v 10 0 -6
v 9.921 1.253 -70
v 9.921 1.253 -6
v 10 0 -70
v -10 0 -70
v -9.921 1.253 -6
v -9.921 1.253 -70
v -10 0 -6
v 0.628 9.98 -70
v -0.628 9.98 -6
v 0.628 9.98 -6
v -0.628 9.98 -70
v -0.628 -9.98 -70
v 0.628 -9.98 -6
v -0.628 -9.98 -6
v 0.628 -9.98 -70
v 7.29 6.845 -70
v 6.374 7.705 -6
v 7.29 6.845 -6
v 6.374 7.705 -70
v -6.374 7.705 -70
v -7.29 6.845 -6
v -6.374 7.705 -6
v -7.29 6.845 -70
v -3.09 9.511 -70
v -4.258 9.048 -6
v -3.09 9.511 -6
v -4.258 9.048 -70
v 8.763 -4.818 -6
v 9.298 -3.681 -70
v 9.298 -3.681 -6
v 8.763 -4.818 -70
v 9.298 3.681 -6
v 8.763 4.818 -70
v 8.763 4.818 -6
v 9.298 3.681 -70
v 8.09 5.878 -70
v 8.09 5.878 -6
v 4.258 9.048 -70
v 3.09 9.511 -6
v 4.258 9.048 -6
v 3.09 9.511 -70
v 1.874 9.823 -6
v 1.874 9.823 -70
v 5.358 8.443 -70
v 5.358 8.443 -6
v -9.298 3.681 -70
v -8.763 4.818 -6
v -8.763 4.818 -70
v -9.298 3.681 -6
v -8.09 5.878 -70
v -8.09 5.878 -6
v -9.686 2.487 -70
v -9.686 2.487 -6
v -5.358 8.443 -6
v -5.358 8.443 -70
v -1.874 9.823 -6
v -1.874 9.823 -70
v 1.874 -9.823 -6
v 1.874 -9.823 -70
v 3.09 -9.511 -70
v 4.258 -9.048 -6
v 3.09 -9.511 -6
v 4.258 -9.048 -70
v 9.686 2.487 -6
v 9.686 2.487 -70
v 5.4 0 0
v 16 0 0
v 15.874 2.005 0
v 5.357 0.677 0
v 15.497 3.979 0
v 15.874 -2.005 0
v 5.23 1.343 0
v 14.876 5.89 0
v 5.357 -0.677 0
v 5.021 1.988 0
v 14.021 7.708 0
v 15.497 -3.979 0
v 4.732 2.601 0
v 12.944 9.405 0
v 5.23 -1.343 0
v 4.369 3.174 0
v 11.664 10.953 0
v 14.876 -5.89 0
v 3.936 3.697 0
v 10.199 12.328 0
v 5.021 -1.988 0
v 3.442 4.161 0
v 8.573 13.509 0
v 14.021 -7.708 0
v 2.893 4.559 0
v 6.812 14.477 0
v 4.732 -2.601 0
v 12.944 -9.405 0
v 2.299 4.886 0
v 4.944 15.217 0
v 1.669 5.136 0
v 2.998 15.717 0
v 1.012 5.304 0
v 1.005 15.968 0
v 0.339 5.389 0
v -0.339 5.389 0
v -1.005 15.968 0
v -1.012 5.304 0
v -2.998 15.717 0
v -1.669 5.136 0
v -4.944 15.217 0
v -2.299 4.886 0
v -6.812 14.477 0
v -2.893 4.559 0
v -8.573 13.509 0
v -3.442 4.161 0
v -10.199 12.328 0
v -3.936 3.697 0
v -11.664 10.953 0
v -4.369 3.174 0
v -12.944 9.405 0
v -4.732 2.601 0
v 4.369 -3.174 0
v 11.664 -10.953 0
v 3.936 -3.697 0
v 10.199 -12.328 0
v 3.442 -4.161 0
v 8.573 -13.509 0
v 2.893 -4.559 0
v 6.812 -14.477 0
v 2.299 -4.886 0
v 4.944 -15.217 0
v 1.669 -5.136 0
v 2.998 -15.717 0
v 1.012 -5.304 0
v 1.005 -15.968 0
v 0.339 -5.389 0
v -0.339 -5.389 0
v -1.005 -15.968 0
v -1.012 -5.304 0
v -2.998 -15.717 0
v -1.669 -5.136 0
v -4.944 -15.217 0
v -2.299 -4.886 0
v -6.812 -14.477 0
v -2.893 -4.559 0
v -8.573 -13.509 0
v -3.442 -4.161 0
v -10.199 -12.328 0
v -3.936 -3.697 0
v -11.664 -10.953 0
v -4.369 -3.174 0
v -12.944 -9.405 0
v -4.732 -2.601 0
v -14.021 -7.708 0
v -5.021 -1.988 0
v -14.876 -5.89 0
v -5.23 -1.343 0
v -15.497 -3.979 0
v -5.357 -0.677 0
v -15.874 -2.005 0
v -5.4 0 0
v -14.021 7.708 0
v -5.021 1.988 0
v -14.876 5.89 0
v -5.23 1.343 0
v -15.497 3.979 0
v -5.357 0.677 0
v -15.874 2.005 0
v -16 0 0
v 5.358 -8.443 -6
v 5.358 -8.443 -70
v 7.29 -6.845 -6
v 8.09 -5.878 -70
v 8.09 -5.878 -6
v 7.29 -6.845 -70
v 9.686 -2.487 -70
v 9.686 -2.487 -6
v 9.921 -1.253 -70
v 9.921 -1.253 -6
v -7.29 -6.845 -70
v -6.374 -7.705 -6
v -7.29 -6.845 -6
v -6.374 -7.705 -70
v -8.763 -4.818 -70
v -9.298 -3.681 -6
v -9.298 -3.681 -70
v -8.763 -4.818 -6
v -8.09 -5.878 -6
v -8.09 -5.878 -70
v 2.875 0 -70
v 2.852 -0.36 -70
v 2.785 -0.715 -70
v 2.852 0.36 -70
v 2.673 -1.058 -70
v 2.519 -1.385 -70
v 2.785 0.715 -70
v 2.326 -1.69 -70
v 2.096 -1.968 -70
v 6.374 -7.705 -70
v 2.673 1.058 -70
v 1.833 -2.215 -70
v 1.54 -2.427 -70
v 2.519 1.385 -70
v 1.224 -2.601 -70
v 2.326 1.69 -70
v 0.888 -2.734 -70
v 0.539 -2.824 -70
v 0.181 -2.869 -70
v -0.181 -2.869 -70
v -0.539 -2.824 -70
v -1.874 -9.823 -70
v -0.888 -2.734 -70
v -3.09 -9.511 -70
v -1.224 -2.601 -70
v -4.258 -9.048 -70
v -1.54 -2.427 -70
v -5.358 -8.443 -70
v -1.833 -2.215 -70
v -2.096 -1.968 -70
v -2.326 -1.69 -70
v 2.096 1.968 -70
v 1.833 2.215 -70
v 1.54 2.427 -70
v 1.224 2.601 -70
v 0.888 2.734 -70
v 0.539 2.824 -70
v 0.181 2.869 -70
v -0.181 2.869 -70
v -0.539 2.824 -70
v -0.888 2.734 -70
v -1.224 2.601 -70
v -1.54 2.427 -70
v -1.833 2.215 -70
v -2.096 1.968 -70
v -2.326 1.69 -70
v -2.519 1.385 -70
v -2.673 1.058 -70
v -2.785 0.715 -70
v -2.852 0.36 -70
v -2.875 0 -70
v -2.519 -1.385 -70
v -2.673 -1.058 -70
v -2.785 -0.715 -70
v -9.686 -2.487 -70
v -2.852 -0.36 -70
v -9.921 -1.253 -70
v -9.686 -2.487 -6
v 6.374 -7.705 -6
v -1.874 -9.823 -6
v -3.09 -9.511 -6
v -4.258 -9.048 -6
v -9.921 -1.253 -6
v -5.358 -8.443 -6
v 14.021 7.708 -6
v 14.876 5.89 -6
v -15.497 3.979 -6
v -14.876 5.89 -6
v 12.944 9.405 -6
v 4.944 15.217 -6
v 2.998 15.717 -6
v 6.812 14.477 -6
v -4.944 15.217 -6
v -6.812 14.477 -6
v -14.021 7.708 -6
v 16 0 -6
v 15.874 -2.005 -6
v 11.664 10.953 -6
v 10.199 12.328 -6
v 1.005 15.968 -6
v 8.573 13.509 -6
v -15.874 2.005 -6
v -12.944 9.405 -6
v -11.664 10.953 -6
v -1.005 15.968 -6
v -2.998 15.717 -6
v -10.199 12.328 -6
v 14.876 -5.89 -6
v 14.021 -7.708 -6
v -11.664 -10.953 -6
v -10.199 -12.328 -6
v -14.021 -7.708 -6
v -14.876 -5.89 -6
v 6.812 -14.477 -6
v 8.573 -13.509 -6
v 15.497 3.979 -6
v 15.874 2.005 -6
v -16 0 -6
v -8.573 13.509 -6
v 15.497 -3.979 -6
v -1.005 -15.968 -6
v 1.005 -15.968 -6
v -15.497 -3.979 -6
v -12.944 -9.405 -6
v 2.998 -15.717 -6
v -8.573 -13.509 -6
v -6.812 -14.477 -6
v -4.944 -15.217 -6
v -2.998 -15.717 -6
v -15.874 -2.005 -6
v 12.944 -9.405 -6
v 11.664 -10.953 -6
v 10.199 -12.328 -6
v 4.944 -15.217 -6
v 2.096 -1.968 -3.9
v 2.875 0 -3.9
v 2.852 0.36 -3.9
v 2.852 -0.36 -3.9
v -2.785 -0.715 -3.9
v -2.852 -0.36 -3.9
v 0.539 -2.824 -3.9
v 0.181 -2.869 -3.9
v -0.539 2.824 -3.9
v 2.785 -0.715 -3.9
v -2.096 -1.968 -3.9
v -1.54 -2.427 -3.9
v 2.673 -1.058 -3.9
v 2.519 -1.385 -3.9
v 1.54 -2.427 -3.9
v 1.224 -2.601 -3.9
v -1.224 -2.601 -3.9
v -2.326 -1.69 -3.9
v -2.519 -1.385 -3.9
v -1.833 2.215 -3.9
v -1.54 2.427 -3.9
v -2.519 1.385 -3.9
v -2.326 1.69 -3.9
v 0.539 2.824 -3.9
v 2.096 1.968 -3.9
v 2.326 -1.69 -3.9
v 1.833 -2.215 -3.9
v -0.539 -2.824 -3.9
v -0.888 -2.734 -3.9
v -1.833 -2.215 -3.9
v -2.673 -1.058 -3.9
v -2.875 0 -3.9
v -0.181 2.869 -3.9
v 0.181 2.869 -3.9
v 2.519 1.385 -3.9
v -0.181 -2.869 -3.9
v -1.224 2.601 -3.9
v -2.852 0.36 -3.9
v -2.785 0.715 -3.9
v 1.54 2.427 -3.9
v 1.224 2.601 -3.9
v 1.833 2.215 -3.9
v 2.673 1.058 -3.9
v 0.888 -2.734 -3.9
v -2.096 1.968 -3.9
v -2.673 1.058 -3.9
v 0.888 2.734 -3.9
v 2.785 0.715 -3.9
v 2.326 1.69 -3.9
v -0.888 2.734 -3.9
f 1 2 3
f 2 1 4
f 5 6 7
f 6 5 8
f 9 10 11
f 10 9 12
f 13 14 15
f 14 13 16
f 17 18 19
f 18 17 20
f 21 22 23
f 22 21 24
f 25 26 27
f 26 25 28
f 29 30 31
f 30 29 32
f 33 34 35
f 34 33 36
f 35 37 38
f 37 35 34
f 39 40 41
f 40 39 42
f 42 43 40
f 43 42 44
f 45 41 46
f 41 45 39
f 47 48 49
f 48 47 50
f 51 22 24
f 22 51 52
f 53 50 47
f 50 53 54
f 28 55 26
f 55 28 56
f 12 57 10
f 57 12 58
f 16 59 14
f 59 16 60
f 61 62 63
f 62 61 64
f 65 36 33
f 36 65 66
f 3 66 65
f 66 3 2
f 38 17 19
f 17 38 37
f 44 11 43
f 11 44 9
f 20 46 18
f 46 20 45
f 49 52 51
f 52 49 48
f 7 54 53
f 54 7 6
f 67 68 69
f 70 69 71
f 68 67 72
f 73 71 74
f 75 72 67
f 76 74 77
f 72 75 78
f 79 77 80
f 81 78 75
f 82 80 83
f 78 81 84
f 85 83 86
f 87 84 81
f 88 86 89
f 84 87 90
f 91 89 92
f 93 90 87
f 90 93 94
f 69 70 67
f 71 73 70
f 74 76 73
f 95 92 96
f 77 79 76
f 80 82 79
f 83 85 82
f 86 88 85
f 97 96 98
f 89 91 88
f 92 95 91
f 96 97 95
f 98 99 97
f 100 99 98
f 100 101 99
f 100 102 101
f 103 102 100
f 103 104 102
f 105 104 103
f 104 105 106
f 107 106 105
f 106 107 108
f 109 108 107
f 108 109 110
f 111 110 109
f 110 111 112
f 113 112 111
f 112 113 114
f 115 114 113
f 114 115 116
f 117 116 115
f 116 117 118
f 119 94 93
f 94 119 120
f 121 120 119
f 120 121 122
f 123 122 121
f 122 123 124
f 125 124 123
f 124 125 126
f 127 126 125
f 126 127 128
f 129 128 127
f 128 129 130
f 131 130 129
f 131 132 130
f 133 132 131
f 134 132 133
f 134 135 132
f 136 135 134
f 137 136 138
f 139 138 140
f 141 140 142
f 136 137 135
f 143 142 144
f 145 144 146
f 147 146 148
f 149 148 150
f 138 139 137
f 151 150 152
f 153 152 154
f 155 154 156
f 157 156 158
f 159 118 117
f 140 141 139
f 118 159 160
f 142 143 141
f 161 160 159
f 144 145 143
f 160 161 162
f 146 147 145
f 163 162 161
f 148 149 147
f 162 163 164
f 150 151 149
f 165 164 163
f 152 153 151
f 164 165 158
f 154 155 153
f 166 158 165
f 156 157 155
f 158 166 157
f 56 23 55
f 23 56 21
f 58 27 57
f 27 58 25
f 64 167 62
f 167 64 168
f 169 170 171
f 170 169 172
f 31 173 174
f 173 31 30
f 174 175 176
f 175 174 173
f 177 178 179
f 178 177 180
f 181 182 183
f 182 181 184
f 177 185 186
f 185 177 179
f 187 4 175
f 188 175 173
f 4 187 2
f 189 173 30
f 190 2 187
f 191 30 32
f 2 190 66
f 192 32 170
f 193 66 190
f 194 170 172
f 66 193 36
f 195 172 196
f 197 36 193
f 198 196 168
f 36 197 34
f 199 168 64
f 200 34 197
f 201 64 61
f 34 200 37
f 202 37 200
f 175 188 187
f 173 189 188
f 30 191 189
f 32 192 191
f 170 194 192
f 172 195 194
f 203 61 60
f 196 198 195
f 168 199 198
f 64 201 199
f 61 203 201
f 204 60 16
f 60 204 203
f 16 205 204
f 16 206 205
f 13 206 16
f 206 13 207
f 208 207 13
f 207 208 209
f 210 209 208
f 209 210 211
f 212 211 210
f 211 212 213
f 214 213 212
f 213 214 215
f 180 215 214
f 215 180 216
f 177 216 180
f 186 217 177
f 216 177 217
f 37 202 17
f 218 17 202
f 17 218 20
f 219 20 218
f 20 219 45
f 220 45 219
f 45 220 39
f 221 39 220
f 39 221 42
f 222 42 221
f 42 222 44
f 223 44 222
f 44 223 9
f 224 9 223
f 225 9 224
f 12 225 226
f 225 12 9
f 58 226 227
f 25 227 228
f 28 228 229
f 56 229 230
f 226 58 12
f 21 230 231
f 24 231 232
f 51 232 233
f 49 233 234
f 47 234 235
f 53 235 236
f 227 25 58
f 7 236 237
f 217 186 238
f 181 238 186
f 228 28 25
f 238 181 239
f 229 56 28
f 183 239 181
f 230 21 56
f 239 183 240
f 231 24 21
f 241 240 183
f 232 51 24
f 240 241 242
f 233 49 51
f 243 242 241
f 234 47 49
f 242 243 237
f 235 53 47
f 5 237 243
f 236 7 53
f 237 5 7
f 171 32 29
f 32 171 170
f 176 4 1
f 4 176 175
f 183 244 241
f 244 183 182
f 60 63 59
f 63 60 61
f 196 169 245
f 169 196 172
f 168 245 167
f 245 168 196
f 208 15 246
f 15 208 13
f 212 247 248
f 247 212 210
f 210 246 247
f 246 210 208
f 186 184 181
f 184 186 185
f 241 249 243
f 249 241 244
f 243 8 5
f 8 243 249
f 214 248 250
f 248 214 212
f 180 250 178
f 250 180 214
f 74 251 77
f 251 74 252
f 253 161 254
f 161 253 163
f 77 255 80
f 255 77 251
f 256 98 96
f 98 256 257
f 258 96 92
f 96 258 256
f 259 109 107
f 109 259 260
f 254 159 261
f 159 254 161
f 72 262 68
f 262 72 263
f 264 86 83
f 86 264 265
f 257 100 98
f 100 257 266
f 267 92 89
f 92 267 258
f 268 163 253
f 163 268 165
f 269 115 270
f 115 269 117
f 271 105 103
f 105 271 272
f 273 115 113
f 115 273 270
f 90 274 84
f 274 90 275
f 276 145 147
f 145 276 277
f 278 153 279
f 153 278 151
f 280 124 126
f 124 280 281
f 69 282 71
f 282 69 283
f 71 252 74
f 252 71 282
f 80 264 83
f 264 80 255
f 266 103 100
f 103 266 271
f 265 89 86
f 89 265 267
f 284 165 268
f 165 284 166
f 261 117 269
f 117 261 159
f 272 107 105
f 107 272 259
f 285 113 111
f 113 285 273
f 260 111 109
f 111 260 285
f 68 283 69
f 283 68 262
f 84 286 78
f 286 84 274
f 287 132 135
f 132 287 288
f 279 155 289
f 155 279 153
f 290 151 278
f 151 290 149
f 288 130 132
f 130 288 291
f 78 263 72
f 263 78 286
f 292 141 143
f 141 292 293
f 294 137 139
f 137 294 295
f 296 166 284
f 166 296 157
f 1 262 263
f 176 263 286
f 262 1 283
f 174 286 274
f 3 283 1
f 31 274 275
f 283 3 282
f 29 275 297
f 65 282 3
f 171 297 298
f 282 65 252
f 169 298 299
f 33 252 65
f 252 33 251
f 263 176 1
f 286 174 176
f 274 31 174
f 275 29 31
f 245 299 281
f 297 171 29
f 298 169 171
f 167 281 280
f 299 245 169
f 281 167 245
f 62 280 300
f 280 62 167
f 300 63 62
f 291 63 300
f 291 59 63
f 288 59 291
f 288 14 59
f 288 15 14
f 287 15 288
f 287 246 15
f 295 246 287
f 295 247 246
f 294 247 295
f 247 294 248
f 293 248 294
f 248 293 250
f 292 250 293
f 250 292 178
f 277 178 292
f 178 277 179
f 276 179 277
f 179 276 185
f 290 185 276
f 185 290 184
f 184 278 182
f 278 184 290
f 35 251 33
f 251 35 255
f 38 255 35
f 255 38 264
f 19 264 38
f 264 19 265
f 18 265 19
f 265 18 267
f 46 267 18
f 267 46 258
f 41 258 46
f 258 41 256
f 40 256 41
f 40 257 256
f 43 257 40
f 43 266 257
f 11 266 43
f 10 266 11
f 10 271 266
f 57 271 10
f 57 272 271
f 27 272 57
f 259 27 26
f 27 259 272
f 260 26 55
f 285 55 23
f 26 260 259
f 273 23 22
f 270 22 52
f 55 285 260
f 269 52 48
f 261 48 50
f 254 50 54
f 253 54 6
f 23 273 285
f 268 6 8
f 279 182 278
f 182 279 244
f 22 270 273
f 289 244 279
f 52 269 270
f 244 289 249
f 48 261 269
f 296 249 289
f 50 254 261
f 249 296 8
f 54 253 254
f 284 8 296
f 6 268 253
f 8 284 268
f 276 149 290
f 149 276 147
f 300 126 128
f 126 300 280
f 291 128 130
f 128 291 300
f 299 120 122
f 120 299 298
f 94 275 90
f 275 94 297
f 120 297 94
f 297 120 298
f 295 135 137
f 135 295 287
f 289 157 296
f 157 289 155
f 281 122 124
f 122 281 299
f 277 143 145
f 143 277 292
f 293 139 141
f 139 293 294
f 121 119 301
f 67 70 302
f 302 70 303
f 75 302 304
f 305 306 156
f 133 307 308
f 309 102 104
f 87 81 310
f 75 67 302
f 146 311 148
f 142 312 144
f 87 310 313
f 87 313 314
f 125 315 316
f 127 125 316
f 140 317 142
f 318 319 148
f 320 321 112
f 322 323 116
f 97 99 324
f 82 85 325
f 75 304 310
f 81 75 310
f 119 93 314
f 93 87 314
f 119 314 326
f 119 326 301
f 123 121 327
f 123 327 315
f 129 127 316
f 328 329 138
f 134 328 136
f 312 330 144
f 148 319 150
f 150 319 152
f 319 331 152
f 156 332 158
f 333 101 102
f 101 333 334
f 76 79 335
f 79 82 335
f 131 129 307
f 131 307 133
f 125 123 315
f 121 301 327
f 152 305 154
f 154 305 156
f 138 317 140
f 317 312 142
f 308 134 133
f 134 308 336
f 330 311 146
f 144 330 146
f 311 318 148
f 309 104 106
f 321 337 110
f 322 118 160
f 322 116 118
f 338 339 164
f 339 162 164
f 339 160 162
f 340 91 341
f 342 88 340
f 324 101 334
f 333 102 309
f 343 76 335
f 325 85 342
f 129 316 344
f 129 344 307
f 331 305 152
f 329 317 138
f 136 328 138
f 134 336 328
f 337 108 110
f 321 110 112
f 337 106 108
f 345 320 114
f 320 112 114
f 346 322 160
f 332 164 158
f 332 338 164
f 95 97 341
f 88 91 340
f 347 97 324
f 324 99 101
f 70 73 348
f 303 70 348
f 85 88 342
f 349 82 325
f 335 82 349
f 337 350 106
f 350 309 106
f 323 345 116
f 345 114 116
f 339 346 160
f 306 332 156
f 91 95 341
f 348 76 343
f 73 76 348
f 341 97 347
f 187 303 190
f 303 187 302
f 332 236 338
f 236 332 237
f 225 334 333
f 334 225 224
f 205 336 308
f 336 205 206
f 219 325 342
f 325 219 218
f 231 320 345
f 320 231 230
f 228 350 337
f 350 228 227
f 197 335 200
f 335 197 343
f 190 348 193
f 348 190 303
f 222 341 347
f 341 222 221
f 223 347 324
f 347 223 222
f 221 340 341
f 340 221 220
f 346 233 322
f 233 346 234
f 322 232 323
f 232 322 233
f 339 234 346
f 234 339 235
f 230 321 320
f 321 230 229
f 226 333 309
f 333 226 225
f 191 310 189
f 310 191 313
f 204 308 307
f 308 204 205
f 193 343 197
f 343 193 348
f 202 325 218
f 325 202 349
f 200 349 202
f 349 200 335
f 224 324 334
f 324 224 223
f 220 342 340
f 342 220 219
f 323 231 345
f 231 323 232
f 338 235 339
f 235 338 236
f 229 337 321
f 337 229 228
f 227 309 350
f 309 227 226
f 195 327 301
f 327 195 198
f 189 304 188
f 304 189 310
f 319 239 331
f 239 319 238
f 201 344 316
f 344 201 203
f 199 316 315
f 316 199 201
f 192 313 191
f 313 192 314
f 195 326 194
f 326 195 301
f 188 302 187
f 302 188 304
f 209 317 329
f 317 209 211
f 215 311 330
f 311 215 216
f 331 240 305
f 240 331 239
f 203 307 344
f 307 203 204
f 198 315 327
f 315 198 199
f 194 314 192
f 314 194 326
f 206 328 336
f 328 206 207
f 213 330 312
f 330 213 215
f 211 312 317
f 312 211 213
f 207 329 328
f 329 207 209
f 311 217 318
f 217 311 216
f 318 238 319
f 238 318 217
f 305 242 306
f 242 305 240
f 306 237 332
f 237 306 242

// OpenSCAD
$fn = 50;


difference() {
	union() {
		translate(v = [0, 0, -70.0000000000]) {
			cylinder(h = 70, r = 10.0000000000);
		}
		translate(v = [0, 0, -6.0000000000]) {
			cylinder(h = 6, r = 16.0000000000);
		}
	}
	union() {
		translate(v = [0, 0, 0]) {
			rotate(a = [0, 0, 0]) {
				difference() {
					union() {
						#translate(v = [0, 0, -70.0000000000]) {
							cylinder(h = 70, r = 2.6000000000);
						}
						#translate(v = [0, 0, -3.9000000000]) {
							cylinder(h = 3.9000000000, r = 10.0000000000, r1 = 2.8750000000, r2 = 5.4000000000);
						}
						#translate(v = [0, 0, -70.0000000000]) {
							cylinder(h = 70, r = 2.8750000000);
						}
						#translate(v = [0, 0, -70.0000000000]) {
							cylinder(h = 70, r = 2.6000000000);
						}
					}
					union();
				}
			}
		}
	}
}
